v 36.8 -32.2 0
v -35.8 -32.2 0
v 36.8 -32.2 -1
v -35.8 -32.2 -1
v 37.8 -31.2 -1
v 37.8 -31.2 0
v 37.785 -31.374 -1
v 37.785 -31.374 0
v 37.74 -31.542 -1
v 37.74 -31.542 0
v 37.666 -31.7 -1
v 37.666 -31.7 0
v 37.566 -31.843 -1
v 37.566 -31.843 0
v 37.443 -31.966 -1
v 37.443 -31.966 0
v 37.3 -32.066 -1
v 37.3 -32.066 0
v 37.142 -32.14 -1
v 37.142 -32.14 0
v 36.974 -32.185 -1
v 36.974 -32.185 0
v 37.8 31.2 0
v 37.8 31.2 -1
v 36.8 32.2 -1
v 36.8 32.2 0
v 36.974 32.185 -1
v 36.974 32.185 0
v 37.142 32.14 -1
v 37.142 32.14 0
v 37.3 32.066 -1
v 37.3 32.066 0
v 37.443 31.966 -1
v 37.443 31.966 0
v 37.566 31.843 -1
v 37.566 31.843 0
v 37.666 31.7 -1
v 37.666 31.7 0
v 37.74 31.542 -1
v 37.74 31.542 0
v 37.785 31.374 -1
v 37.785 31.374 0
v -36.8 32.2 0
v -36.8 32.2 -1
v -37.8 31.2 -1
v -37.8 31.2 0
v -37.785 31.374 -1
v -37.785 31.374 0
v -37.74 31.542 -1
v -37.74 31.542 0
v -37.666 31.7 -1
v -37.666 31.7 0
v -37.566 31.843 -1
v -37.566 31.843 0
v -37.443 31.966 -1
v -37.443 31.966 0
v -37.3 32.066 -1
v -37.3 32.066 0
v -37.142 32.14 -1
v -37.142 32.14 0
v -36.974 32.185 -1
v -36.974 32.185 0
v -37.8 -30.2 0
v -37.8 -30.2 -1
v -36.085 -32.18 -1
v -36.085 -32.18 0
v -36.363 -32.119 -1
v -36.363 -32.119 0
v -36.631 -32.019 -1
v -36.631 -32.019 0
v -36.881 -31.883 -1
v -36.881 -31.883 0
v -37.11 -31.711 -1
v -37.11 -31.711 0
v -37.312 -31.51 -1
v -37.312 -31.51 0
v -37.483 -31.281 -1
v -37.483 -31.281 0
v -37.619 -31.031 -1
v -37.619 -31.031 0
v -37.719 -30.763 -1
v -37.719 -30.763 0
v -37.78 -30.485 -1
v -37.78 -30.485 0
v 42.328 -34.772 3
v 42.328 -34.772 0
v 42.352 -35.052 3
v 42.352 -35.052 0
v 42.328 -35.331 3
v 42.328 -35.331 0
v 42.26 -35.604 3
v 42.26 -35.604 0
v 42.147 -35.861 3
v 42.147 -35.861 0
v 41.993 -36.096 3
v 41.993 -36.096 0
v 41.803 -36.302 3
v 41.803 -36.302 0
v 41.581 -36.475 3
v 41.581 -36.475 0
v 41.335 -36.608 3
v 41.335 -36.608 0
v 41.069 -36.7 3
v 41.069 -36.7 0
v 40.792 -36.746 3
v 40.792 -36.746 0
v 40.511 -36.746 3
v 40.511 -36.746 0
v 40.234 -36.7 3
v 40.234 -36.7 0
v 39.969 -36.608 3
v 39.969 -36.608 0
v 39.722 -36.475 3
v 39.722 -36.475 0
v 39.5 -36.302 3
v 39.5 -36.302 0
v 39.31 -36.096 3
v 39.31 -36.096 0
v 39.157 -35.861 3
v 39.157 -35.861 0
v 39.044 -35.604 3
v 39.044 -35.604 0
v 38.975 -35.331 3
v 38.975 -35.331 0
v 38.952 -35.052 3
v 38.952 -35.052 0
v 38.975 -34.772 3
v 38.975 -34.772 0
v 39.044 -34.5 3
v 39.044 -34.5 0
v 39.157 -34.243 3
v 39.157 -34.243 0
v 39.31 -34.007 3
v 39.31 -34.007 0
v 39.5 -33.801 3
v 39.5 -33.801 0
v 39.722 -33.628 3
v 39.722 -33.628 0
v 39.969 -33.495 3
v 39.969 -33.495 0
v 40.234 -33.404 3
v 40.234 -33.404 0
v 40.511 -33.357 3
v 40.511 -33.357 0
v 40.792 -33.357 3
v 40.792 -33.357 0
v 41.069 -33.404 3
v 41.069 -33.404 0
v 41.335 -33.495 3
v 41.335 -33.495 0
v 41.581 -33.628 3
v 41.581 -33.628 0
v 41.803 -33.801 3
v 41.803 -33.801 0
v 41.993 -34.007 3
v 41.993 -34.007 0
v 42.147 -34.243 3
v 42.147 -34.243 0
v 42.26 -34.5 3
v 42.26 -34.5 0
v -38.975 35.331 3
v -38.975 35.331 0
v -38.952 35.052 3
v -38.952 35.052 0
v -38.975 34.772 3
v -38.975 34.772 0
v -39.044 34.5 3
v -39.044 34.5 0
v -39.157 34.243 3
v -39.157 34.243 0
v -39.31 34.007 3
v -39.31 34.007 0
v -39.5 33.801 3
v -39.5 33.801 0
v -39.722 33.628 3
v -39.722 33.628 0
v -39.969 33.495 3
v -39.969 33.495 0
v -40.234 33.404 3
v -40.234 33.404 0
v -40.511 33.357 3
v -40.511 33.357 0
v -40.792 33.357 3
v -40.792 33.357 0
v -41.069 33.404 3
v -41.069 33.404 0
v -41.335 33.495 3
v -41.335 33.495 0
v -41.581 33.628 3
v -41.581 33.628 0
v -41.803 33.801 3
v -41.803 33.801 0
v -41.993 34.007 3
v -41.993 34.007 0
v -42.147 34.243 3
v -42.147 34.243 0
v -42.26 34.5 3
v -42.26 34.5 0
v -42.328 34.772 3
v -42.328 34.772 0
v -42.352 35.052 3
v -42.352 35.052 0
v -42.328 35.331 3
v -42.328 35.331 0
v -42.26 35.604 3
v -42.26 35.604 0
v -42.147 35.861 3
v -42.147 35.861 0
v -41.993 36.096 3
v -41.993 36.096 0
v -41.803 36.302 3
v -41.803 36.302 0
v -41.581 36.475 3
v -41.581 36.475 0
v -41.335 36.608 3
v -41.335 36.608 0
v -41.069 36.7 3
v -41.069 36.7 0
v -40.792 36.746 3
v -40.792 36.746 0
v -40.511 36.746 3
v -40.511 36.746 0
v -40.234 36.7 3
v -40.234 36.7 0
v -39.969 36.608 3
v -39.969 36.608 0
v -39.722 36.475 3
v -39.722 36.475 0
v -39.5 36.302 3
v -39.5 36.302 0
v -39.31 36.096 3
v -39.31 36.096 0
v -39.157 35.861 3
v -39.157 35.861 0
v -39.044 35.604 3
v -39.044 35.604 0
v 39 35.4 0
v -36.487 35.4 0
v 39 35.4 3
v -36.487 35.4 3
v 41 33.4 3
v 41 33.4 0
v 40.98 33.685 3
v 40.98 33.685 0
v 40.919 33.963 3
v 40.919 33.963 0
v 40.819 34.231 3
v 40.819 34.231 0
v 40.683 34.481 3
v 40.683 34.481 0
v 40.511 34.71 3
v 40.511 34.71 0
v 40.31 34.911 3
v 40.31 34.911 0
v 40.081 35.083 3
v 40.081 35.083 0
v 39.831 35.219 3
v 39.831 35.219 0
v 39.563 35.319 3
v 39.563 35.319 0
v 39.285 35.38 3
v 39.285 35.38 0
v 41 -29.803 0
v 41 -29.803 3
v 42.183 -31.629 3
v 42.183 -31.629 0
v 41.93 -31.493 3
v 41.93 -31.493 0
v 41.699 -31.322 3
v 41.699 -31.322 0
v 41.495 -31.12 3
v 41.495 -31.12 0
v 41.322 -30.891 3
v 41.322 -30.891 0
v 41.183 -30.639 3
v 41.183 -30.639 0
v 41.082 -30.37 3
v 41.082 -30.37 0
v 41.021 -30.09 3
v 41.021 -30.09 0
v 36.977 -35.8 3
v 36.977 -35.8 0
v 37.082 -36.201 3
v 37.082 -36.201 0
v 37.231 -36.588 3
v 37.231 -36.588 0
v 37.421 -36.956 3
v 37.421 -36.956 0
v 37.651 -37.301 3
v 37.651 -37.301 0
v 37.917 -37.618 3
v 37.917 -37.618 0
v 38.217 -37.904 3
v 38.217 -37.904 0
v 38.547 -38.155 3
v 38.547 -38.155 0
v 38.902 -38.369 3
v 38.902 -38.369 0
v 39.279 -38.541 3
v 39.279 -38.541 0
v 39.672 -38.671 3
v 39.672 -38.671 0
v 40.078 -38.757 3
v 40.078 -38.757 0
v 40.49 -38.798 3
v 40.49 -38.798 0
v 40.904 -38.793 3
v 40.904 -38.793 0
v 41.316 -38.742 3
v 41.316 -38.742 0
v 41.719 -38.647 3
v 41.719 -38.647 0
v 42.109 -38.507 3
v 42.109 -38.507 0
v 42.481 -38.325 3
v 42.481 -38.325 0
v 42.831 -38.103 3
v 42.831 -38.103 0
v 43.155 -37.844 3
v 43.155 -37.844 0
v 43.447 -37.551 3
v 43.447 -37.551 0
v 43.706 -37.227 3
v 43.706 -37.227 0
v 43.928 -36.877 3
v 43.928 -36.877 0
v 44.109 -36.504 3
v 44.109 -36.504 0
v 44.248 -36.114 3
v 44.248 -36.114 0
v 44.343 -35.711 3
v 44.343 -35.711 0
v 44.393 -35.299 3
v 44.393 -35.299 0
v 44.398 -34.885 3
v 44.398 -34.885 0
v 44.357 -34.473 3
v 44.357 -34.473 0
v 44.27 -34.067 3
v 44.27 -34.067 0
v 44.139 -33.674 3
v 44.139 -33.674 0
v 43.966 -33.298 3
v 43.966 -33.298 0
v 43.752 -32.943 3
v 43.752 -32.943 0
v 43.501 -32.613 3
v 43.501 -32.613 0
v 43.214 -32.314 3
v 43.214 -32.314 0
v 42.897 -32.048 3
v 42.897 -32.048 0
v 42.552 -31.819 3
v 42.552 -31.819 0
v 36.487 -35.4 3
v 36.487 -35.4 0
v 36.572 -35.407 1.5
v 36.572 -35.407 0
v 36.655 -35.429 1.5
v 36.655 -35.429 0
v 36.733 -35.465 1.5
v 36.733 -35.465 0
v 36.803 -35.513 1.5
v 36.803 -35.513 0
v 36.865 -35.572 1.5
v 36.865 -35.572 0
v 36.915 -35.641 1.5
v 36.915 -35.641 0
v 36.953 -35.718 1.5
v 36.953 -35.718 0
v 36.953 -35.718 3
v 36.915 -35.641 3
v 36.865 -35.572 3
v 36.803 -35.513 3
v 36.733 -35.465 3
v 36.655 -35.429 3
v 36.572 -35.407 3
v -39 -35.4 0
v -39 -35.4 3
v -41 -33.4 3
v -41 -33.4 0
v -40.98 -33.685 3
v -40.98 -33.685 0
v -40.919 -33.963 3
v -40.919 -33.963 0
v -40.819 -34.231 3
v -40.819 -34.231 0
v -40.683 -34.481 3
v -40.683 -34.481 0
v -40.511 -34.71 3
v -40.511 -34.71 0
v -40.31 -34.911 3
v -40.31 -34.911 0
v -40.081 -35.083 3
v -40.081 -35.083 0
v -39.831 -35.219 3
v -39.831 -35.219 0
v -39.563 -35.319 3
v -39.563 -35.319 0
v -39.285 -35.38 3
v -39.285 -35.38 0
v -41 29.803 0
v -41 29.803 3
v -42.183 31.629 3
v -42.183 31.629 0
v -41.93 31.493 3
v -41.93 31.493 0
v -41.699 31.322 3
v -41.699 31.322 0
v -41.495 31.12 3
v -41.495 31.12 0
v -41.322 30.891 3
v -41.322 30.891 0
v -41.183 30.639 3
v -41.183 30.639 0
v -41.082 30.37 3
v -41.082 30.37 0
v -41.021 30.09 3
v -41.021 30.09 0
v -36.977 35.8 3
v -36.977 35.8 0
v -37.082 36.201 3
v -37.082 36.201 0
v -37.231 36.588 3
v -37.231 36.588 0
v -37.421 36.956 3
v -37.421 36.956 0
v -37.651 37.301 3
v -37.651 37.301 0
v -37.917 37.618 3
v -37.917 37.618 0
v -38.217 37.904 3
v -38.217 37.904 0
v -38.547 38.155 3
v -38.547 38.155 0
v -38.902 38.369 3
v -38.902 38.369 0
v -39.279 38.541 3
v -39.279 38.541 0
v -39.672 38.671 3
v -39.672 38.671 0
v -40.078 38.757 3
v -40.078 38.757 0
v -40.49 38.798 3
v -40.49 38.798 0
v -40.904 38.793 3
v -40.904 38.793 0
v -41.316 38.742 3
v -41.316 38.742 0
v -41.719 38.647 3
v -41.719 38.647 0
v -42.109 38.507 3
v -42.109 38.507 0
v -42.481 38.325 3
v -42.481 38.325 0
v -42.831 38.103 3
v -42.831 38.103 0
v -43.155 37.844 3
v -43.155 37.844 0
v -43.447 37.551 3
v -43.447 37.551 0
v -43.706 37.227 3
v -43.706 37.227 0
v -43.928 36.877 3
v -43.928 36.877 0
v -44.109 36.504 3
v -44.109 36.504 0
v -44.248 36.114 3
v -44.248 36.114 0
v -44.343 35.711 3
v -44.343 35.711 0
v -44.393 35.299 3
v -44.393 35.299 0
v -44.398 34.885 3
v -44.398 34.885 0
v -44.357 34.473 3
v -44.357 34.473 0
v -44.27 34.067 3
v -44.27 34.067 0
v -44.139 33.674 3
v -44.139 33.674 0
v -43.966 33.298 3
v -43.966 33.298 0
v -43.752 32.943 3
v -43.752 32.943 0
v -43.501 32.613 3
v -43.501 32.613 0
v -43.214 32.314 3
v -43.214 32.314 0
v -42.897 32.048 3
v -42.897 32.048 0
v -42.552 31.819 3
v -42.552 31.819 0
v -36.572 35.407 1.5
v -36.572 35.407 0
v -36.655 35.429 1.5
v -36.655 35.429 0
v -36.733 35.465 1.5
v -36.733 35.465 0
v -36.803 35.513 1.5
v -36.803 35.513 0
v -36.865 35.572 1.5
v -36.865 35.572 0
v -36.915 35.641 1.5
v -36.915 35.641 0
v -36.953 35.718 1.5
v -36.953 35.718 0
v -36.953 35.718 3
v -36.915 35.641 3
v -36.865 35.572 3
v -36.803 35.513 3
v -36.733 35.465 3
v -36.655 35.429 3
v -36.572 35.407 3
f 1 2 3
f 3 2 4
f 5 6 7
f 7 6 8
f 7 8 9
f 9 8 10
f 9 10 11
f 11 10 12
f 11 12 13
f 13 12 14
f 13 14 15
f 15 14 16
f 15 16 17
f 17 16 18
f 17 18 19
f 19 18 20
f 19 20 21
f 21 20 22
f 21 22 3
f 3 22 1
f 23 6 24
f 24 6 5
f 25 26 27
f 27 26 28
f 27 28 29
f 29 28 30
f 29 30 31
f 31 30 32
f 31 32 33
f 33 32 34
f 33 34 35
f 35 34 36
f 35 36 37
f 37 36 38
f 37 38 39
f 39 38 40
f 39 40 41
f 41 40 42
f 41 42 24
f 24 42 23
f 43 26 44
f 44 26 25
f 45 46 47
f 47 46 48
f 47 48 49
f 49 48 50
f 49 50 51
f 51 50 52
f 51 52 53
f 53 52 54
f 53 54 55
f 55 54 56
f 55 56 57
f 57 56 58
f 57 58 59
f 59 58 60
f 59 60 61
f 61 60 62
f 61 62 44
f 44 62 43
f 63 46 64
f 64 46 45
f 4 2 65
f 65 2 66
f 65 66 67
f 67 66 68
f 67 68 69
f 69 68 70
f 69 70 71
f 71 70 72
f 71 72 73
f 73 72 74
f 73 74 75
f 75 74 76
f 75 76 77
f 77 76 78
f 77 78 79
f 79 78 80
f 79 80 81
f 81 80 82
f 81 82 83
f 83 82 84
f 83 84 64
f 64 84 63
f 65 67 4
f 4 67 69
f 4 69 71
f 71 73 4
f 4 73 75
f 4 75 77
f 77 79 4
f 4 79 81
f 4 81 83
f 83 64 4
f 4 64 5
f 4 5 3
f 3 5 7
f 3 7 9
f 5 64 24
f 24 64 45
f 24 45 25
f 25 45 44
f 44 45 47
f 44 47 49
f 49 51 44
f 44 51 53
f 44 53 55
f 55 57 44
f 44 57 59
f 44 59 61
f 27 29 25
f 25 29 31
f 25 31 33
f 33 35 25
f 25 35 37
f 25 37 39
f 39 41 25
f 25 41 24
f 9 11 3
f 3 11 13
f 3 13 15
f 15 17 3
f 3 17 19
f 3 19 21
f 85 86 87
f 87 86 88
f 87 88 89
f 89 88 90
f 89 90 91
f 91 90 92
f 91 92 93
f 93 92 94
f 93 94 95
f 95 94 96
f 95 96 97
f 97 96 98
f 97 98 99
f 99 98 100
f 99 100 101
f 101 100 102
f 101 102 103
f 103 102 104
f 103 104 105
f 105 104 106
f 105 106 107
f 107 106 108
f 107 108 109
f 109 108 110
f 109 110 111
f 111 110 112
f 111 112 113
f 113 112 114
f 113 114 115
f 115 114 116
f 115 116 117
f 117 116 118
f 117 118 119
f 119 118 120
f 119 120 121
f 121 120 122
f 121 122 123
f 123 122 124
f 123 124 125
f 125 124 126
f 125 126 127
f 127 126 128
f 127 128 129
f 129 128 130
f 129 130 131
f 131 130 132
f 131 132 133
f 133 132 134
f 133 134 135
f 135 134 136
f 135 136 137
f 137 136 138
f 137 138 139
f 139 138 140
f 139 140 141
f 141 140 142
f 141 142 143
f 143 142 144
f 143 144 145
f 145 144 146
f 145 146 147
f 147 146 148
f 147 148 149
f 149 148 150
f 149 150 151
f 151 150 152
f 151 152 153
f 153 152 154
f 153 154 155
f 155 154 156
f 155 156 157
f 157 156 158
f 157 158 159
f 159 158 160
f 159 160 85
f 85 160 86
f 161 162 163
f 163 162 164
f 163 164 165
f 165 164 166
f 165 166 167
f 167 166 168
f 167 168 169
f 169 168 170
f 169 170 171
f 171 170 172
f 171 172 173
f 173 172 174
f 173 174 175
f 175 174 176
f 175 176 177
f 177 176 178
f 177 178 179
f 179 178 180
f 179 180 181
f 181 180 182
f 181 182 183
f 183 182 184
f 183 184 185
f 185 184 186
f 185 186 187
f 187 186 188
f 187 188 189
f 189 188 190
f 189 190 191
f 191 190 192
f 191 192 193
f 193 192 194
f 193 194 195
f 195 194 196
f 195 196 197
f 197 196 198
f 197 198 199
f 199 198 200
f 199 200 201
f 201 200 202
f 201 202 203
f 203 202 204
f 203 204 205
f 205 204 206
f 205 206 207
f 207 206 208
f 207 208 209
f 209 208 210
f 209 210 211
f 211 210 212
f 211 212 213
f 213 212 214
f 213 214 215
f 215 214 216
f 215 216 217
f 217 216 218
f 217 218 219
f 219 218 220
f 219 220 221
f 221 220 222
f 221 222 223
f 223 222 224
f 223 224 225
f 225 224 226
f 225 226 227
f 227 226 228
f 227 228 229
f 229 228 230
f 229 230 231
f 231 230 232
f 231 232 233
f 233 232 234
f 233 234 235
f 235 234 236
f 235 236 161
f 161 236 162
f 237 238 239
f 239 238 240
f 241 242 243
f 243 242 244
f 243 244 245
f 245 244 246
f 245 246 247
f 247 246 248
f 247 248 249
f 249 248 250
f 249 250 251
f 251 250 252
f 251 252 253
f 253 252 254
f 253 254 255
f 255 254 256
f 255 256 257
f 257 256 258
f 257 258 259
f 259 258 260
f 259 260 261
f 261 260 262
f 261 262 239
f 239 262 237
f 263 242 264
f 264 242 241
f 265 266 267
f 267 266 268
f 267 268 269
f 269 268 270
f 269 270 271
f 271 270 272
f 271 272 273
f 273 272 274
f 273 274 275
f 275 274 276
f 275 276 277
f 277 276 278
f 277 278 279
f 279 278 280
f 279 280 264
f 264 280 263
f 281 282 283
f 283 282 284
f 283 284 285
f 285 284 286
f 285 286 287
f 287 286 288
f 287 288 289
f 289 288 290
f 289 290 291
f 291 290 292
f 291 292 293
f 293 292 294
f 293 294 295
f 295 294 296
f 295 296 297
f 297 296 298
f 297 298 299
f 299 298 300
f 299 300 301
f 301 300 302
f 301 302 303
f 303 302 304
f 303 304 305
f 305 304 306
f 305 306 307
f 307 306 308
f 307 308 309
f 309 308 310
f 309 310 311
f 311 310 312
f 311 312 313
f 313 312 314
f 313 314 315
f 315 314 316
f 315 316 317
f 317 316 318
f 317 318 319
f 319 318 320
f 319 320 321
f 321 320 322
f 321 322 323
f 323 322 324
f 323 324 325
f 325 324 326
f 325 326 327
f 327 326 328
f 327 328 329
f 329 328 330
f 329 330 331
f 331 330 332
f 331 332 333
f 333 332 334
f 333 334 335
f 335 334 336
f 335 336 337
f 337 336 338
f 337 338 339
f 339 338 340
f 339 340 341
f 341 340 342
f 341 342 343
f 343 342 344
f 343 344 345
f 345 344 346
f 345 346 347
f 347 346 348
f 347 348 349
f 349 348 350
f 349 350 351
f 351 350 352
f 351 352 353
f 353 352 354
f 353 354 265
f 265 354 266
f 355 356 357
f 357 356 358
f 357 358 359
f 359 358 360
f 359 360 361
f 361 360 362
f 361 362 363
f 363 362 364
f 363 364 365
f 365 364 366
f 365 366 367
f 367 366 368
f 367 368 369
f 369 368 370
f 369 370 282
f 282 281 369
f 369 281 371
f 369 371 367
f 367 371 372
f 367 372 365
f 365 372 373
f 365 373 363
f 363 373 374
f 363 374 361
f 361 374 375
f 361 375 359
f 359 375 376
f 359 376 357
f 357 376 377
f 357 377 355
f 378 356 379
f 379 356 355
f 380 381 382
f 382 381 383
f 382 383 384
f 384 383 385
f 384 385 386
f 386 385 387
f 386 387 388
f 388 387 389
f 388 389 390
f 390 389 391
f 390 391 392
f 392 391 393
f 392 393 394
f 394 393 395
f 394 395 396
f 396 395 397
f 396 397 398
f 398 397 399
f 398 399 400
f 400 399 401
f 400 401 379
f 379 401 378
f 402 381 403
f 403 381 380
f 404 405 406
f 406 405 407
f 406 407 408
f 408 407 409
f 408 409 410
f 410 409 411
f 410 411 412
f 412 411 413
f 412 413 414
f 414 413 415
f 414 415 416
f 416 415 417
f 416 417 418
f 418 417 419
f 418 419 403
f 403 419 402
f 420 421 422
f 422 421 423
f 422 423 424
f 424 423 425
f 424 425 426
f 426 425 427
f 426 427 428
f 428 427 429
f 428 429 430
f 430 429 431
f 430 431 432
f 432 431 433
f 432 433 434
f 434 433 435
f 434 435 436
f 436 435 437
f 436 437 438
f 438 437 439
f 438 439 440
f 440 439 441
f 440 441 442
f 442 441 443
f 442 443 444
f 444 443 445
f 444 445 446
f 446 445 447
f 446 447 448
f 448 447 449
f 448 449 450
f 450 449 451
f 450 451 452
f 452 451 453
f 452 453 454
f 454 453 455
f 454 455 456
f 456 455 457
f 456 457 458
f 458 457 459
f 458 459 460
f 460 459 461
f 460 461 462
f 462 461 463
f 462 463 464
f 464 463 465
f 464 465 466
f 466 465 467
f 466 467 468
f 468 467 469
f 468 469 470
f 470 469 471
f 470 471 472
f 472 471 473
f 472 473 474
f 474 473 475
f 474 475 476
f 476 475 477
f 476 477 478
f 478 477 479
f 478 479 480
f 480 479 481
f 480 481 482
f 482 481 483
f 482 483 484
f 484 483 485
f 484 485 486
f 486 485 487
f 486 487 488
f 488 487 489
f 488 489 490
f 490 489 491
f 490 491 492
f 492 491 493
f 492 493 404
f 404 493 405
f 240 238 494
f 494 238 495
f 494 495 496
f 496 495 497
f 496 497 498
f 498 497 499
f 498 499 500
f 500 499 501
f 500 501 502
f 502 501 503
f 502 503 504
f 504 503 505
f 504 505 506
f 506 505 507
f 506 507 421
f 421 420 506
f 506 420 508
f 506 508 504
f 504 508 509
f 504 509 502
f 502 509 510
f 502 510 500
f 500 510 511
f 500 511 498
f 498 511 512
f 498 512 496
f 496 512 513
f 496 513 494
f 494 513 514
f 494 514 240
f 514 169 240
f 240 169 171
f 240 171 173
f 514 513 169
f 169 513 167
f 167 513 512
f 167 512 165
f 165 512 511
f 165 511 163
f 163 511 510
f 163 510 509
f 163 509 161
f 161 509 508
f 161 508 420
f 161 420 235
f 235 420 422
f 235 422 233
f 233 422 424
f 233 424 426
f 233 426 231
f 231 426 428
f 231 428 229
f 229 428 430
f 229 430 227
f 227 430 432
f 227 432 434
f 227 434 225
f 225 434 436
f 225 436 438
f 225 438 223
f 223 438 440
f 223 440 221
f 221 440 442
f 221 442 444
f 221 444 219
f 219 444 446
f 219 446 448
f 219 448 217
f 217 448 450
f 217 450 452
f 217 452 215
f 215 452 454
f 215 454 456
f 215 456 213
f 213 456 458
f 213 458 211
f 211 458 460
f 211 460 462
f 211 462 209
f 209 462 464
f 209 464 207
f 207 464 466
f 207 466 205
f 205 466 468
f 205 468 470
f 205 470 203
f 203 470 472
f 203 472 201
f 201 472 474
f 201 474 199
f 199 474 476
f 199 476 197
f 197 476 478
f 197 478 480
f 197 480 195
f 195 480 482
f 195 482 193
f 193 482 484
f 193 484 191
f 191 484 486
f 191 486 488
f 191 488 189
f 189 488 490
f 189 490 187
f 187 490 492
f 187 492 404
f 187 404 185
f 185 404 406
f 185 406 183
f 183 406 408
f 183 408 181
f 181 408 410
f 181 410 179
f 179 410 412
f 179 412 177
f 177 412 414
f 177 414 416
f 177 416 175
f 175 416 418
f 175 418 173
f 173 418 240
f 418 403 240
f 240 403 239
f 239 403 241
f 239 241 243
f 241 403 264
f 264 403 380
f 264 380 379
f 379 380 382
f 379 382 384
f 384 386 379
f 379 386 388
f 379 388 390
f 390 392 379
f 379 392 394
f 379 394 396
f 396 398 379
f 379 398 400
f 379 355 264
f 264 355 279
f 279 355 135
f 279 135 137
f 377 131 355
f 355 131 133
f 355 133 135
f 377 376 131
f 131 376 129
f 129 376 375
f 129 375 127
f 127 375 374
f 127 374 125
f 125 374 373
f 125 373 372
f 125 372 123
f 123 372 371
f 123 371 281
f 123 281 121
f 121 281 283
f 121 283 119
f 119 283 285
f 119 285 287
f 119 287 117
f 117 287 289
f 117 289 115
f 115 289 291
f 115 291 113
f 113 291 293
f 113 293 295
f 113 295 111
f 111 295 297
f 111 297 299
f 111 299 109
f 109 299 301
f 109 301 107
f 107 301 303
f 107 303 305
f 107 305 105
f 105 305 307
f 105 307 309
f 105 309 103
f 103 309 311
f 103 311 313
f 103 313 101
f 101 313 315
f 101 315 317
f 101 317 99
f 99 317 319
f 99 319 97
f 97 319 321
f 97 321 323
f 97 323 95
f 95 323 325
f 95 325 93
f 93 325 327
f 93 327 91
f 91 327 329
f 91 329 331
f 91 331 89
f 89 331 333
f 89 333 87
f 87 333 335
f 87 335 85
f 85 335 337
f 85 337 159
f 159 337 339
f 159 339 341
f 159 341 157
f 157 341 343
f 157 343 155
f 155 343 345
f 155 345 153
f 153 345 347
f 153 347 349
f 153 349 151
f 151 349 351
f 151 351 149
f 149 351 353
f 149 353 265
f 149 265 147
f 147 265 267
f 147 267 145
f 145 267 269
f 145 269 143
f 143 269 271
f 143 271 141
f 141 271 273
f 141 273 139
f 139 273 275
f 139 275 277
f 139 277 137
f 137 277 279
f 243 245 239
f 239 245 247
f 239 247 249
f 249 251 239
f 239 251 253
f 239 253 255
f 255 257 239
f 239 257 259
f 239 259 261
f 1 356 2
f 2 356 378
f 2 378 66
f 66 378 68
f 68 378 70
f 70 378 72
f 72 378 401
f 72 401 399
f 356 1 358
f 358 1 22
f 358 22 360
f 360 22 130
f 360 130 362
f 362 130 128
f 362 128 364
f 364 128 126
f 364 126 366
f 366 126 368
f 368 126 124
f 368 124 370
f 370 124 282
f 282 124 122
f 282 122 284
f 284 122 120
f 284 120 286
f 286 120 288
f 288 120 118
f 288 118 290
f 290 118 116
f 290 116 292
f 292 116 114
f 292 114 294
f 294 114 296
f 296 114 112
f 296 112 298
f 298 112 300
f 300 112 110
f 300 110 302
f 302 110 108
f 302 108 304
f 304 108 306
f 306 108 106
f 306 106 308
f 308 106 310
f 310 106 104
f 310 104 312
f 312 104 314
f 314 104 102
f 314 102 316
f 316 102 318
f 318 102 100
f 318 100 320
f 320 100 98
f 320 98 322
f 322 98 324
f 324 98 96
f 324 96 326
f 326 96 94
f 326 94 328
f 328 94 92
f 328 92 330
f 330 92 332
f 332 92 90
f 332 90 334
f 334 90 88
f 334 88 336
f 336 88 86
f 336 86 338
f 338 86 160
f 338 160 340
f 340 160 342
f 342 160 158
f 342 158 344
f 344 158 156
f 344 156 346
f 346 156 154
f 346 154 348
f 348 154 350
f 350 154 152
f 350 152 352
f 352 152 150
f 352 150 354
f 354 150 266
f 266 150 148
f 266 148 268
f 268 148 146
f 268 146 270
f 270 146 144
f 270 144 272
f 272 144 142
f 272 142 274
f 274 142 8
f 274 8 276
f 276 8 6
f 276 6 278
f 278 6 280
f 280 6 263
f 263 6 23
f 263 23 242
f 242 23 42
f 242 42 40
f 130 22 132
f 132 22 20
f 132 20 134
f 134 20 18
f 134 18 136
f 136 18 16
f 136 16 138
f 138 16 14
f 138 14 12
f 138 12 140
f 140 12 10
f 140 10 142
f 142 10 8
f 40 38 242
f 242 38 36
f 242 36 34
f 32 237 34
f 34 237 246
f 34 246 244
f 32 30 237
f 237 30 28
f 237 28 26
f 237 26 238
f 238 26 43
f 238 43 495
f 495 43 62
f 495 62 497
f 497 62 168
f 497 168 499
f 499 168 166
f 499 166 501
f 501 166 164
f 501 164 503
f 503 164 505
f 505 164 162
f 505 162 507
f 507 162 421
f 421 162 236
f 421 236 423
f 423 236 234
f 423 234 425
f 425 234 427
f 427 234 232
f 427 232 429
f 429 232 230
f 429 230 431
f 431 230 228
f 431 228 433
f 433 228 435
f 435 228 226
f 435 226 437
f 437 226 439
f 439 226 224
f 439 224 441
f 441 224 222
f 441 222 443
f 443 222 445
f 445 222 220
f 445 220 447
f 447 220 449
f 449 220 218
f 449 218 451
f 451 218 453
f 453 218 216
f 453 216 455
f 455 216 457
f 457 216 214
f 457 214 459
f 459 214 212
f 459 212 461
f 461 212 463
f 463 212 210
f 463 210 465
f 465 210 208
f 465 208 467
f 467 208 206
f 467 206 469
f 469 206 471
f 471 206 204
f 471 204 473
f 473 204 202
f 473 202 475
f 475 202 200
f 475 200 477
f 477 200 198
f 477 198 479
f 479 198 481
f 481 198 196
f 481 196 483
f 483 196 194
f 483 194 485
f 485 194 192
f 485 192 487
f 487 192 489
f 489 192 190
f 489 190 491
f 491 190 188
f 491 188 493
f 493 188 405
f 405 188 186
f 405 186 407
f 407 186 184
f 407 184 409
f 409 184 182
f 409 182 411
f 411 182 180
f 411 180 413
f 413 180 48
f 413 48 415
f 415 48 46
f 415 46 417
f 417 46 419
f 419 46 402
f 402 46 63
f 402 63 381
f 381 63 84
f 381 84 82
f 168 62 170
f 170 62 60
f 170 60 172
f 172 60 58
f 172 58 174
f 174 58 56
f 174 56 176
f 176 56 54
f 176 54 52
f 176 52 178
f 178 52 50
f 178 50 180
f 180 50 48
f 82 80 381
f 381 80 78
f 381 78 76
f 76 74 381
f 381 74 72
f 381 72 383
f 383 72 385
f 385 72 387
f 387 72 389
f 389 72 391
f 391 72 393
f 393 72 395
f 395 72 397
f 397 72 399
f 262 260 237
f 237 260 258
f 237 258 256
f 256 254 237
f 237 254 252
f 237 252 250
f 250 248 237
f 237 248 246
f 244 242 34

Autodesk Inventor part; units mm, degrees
ref_plane "YZ Plane" through (0, 0, 0) normal (1, 0, 0) x (0, 1, 0)
ref_plane "XZ Plane" through (0, 0, 0) normal (0, 1, 0) x (-1, 0, 0)
ref_plane "XY Plane" through (0, 0, 0) normal (0, 0, 1) x (1, 0, 0)
sketch "Skizze1" plane through (0, 0, 0) normal (0, 0, 1) x (1, 0, 0)
  line L0 (-41, 29.8031) -> (-41, -33.4) projected
  arc A0 (-36.9771, 35.8002) -> (-42.1832, 31.6287) centre (-40.6517, 35.0517) ccw projected
  arc A1 (-41, 29.8031) -> (-42.1832, 31.6287) centre (-43, 29.8031) ccw projected
  line L1 (-23, 35.4) -> (-36.4872, 35.4) projected
  arc A2 (-36.9771, 35.8002) -> (-36.4872, 35.4) centre (-36.4872, 35.9) ccw projected
  line L2 (39, 35.4) -> (-8, 35.4) projected
  line L3 (41, -29.8031) -> (41, 33.4) projected
  arc A3 (41, 33.4) -> (39, 35.4) centre (39, 33.4) ccw projected
  circle A4 centre (-40.6517, 35.0517) radius 1.25 projected
  circle A5 centre (40.6517, -35.0517) radius 1.25 projected
  arc A6 (36.9771, -35.8002) -> (42.1832, -31.6287) centre (40.6517, -35.0517) ccw projected
  arc A7 (41, -29.8031) -> (42.1832, -31.6287) centre (43, -29.8031) ccw projected
  arc A8 (36.9771, -35.8002) -> (36.4872, -35.4) centre (36.4872, -35.9) ccw projected
  line L4 (35, -35.4) -> (36.4872, -35.4) projected
  arc A9 (-41, -33.4) -> (-39, -35.4) centre (-39, -33.4) ccw projected
  line L5 (-39, -35.4) -> (-35, -35.4) projected
  line L6 (-35, -35.4) -> (35, -35.4)
  line L7 (-23, 35.4) -> (-8, 35.4)
  circle A10 centre (40.6517, -35.0517) radius 1.7
  circle A11 centre (-40.6517, 35.0517) radius 1.7
  point P0 (0, 0)
  point P1 (-36.651, 36.3964)
  dimension "d6" = 3.4
extrude "Extrusion1" add sketch "Skizze1" along normal blind 3 contours A1 A0 A2 L1 L7 L2 A3 L3 A7 A6 A8 L4 L6 L5 A9 L0
ref_plane "Arbeitsebene1" through (0, 0, 0) normal (0, 0, -1) x (-1, 0, 0)
sketch "Skizze2" plane through (0, 0, 0) normal (0, 0, -1) x (-1, 0, 0)
  line L0 (-38, 32.1) -> (-38, -32.1) projected
  line L1 (33, -32.4) -> (-33, -32.4) projected
  line L2 (-37.7, -32.4) -> (-33, -32.4) projected
  arc A0 (-38, -32.1) -> (-37.7, -32.4) centre (-37.7, -32.1) ccw projected
  line L3 (-33, 32.4) -> (33, 32.4) projected
  line L4 (-33, 32.4) -> (-37.7, 32.4) projected
  arc A1 (-37.7, 32.4) -> (-38, 32.1) centre (-37.7, 32.1) ccw projected
  line L5 (38, -32.1) -> (38, 32.1) projected
  line L6 (33, -32.4) -> (37.7, -32.4) projected
  arc A2 (37.7, -32.4) -> (38, -32.1) centre (37.7, -32.1) ccw projected
  line L7 (37.7, 32.4) -> (33, 32.4) projected
  arc A3 (38, 32.1) -> (37.7, 32.4) centre (37.7, 32.1) ccw projected
  line L8 (-32.5, -32.2) -> (32.5, -32.2)
  line L9 (32.5, -32.2) -> (35.8, -32.2)
  line L10 (37.8, -30.2) -> (37.8, 31.2)
  line L11 (36.8, 32.2) -> (32.5, 32.2)
  line L12 (32.5, 32.2) -> (-32.5, 32.2)
  line L13 (-32.5, 32.2) -> (-36.8, 32.2)
  line L14 (-37.8, 31.2) -> (-37.8, -31.2)
  line L15 (-36.8, -32.2) -> (-32.5, -32.2)
  arc A4 (35.8, -32.2) -> (37.8, -30.2) centre (35.8, -30.2) ccw
  arc A5 (37.8, 31.2) -> (36.8, 32.2) centre (36.8, 31.2) ccw
  arc A6 (-36.8, 32.2) -> (-37.8, 31.2) centre (-36.8, 31.2) ccw
  arc A7 (-37.8, -31.2) -> (-36.8, -32.2) centre (-36.8, -31.2) ccw
  point P0 (37.8, -32.2)
  point P1 (37.8, 32.2)
  point P2 (-37.8, 32.2)
  point P3 (-37.8, -32.2)
  dimension "d7" = 0.2
  dimension "d8" = 2
  dimension "d9" = 1
extrude "Extrusion2" add sketch "Skizze2" along normal blind 1 contours L15 A7 L14 A6 L13 L12 L11 A5 L10 A4 L9 L8
properties part number "deckel"
